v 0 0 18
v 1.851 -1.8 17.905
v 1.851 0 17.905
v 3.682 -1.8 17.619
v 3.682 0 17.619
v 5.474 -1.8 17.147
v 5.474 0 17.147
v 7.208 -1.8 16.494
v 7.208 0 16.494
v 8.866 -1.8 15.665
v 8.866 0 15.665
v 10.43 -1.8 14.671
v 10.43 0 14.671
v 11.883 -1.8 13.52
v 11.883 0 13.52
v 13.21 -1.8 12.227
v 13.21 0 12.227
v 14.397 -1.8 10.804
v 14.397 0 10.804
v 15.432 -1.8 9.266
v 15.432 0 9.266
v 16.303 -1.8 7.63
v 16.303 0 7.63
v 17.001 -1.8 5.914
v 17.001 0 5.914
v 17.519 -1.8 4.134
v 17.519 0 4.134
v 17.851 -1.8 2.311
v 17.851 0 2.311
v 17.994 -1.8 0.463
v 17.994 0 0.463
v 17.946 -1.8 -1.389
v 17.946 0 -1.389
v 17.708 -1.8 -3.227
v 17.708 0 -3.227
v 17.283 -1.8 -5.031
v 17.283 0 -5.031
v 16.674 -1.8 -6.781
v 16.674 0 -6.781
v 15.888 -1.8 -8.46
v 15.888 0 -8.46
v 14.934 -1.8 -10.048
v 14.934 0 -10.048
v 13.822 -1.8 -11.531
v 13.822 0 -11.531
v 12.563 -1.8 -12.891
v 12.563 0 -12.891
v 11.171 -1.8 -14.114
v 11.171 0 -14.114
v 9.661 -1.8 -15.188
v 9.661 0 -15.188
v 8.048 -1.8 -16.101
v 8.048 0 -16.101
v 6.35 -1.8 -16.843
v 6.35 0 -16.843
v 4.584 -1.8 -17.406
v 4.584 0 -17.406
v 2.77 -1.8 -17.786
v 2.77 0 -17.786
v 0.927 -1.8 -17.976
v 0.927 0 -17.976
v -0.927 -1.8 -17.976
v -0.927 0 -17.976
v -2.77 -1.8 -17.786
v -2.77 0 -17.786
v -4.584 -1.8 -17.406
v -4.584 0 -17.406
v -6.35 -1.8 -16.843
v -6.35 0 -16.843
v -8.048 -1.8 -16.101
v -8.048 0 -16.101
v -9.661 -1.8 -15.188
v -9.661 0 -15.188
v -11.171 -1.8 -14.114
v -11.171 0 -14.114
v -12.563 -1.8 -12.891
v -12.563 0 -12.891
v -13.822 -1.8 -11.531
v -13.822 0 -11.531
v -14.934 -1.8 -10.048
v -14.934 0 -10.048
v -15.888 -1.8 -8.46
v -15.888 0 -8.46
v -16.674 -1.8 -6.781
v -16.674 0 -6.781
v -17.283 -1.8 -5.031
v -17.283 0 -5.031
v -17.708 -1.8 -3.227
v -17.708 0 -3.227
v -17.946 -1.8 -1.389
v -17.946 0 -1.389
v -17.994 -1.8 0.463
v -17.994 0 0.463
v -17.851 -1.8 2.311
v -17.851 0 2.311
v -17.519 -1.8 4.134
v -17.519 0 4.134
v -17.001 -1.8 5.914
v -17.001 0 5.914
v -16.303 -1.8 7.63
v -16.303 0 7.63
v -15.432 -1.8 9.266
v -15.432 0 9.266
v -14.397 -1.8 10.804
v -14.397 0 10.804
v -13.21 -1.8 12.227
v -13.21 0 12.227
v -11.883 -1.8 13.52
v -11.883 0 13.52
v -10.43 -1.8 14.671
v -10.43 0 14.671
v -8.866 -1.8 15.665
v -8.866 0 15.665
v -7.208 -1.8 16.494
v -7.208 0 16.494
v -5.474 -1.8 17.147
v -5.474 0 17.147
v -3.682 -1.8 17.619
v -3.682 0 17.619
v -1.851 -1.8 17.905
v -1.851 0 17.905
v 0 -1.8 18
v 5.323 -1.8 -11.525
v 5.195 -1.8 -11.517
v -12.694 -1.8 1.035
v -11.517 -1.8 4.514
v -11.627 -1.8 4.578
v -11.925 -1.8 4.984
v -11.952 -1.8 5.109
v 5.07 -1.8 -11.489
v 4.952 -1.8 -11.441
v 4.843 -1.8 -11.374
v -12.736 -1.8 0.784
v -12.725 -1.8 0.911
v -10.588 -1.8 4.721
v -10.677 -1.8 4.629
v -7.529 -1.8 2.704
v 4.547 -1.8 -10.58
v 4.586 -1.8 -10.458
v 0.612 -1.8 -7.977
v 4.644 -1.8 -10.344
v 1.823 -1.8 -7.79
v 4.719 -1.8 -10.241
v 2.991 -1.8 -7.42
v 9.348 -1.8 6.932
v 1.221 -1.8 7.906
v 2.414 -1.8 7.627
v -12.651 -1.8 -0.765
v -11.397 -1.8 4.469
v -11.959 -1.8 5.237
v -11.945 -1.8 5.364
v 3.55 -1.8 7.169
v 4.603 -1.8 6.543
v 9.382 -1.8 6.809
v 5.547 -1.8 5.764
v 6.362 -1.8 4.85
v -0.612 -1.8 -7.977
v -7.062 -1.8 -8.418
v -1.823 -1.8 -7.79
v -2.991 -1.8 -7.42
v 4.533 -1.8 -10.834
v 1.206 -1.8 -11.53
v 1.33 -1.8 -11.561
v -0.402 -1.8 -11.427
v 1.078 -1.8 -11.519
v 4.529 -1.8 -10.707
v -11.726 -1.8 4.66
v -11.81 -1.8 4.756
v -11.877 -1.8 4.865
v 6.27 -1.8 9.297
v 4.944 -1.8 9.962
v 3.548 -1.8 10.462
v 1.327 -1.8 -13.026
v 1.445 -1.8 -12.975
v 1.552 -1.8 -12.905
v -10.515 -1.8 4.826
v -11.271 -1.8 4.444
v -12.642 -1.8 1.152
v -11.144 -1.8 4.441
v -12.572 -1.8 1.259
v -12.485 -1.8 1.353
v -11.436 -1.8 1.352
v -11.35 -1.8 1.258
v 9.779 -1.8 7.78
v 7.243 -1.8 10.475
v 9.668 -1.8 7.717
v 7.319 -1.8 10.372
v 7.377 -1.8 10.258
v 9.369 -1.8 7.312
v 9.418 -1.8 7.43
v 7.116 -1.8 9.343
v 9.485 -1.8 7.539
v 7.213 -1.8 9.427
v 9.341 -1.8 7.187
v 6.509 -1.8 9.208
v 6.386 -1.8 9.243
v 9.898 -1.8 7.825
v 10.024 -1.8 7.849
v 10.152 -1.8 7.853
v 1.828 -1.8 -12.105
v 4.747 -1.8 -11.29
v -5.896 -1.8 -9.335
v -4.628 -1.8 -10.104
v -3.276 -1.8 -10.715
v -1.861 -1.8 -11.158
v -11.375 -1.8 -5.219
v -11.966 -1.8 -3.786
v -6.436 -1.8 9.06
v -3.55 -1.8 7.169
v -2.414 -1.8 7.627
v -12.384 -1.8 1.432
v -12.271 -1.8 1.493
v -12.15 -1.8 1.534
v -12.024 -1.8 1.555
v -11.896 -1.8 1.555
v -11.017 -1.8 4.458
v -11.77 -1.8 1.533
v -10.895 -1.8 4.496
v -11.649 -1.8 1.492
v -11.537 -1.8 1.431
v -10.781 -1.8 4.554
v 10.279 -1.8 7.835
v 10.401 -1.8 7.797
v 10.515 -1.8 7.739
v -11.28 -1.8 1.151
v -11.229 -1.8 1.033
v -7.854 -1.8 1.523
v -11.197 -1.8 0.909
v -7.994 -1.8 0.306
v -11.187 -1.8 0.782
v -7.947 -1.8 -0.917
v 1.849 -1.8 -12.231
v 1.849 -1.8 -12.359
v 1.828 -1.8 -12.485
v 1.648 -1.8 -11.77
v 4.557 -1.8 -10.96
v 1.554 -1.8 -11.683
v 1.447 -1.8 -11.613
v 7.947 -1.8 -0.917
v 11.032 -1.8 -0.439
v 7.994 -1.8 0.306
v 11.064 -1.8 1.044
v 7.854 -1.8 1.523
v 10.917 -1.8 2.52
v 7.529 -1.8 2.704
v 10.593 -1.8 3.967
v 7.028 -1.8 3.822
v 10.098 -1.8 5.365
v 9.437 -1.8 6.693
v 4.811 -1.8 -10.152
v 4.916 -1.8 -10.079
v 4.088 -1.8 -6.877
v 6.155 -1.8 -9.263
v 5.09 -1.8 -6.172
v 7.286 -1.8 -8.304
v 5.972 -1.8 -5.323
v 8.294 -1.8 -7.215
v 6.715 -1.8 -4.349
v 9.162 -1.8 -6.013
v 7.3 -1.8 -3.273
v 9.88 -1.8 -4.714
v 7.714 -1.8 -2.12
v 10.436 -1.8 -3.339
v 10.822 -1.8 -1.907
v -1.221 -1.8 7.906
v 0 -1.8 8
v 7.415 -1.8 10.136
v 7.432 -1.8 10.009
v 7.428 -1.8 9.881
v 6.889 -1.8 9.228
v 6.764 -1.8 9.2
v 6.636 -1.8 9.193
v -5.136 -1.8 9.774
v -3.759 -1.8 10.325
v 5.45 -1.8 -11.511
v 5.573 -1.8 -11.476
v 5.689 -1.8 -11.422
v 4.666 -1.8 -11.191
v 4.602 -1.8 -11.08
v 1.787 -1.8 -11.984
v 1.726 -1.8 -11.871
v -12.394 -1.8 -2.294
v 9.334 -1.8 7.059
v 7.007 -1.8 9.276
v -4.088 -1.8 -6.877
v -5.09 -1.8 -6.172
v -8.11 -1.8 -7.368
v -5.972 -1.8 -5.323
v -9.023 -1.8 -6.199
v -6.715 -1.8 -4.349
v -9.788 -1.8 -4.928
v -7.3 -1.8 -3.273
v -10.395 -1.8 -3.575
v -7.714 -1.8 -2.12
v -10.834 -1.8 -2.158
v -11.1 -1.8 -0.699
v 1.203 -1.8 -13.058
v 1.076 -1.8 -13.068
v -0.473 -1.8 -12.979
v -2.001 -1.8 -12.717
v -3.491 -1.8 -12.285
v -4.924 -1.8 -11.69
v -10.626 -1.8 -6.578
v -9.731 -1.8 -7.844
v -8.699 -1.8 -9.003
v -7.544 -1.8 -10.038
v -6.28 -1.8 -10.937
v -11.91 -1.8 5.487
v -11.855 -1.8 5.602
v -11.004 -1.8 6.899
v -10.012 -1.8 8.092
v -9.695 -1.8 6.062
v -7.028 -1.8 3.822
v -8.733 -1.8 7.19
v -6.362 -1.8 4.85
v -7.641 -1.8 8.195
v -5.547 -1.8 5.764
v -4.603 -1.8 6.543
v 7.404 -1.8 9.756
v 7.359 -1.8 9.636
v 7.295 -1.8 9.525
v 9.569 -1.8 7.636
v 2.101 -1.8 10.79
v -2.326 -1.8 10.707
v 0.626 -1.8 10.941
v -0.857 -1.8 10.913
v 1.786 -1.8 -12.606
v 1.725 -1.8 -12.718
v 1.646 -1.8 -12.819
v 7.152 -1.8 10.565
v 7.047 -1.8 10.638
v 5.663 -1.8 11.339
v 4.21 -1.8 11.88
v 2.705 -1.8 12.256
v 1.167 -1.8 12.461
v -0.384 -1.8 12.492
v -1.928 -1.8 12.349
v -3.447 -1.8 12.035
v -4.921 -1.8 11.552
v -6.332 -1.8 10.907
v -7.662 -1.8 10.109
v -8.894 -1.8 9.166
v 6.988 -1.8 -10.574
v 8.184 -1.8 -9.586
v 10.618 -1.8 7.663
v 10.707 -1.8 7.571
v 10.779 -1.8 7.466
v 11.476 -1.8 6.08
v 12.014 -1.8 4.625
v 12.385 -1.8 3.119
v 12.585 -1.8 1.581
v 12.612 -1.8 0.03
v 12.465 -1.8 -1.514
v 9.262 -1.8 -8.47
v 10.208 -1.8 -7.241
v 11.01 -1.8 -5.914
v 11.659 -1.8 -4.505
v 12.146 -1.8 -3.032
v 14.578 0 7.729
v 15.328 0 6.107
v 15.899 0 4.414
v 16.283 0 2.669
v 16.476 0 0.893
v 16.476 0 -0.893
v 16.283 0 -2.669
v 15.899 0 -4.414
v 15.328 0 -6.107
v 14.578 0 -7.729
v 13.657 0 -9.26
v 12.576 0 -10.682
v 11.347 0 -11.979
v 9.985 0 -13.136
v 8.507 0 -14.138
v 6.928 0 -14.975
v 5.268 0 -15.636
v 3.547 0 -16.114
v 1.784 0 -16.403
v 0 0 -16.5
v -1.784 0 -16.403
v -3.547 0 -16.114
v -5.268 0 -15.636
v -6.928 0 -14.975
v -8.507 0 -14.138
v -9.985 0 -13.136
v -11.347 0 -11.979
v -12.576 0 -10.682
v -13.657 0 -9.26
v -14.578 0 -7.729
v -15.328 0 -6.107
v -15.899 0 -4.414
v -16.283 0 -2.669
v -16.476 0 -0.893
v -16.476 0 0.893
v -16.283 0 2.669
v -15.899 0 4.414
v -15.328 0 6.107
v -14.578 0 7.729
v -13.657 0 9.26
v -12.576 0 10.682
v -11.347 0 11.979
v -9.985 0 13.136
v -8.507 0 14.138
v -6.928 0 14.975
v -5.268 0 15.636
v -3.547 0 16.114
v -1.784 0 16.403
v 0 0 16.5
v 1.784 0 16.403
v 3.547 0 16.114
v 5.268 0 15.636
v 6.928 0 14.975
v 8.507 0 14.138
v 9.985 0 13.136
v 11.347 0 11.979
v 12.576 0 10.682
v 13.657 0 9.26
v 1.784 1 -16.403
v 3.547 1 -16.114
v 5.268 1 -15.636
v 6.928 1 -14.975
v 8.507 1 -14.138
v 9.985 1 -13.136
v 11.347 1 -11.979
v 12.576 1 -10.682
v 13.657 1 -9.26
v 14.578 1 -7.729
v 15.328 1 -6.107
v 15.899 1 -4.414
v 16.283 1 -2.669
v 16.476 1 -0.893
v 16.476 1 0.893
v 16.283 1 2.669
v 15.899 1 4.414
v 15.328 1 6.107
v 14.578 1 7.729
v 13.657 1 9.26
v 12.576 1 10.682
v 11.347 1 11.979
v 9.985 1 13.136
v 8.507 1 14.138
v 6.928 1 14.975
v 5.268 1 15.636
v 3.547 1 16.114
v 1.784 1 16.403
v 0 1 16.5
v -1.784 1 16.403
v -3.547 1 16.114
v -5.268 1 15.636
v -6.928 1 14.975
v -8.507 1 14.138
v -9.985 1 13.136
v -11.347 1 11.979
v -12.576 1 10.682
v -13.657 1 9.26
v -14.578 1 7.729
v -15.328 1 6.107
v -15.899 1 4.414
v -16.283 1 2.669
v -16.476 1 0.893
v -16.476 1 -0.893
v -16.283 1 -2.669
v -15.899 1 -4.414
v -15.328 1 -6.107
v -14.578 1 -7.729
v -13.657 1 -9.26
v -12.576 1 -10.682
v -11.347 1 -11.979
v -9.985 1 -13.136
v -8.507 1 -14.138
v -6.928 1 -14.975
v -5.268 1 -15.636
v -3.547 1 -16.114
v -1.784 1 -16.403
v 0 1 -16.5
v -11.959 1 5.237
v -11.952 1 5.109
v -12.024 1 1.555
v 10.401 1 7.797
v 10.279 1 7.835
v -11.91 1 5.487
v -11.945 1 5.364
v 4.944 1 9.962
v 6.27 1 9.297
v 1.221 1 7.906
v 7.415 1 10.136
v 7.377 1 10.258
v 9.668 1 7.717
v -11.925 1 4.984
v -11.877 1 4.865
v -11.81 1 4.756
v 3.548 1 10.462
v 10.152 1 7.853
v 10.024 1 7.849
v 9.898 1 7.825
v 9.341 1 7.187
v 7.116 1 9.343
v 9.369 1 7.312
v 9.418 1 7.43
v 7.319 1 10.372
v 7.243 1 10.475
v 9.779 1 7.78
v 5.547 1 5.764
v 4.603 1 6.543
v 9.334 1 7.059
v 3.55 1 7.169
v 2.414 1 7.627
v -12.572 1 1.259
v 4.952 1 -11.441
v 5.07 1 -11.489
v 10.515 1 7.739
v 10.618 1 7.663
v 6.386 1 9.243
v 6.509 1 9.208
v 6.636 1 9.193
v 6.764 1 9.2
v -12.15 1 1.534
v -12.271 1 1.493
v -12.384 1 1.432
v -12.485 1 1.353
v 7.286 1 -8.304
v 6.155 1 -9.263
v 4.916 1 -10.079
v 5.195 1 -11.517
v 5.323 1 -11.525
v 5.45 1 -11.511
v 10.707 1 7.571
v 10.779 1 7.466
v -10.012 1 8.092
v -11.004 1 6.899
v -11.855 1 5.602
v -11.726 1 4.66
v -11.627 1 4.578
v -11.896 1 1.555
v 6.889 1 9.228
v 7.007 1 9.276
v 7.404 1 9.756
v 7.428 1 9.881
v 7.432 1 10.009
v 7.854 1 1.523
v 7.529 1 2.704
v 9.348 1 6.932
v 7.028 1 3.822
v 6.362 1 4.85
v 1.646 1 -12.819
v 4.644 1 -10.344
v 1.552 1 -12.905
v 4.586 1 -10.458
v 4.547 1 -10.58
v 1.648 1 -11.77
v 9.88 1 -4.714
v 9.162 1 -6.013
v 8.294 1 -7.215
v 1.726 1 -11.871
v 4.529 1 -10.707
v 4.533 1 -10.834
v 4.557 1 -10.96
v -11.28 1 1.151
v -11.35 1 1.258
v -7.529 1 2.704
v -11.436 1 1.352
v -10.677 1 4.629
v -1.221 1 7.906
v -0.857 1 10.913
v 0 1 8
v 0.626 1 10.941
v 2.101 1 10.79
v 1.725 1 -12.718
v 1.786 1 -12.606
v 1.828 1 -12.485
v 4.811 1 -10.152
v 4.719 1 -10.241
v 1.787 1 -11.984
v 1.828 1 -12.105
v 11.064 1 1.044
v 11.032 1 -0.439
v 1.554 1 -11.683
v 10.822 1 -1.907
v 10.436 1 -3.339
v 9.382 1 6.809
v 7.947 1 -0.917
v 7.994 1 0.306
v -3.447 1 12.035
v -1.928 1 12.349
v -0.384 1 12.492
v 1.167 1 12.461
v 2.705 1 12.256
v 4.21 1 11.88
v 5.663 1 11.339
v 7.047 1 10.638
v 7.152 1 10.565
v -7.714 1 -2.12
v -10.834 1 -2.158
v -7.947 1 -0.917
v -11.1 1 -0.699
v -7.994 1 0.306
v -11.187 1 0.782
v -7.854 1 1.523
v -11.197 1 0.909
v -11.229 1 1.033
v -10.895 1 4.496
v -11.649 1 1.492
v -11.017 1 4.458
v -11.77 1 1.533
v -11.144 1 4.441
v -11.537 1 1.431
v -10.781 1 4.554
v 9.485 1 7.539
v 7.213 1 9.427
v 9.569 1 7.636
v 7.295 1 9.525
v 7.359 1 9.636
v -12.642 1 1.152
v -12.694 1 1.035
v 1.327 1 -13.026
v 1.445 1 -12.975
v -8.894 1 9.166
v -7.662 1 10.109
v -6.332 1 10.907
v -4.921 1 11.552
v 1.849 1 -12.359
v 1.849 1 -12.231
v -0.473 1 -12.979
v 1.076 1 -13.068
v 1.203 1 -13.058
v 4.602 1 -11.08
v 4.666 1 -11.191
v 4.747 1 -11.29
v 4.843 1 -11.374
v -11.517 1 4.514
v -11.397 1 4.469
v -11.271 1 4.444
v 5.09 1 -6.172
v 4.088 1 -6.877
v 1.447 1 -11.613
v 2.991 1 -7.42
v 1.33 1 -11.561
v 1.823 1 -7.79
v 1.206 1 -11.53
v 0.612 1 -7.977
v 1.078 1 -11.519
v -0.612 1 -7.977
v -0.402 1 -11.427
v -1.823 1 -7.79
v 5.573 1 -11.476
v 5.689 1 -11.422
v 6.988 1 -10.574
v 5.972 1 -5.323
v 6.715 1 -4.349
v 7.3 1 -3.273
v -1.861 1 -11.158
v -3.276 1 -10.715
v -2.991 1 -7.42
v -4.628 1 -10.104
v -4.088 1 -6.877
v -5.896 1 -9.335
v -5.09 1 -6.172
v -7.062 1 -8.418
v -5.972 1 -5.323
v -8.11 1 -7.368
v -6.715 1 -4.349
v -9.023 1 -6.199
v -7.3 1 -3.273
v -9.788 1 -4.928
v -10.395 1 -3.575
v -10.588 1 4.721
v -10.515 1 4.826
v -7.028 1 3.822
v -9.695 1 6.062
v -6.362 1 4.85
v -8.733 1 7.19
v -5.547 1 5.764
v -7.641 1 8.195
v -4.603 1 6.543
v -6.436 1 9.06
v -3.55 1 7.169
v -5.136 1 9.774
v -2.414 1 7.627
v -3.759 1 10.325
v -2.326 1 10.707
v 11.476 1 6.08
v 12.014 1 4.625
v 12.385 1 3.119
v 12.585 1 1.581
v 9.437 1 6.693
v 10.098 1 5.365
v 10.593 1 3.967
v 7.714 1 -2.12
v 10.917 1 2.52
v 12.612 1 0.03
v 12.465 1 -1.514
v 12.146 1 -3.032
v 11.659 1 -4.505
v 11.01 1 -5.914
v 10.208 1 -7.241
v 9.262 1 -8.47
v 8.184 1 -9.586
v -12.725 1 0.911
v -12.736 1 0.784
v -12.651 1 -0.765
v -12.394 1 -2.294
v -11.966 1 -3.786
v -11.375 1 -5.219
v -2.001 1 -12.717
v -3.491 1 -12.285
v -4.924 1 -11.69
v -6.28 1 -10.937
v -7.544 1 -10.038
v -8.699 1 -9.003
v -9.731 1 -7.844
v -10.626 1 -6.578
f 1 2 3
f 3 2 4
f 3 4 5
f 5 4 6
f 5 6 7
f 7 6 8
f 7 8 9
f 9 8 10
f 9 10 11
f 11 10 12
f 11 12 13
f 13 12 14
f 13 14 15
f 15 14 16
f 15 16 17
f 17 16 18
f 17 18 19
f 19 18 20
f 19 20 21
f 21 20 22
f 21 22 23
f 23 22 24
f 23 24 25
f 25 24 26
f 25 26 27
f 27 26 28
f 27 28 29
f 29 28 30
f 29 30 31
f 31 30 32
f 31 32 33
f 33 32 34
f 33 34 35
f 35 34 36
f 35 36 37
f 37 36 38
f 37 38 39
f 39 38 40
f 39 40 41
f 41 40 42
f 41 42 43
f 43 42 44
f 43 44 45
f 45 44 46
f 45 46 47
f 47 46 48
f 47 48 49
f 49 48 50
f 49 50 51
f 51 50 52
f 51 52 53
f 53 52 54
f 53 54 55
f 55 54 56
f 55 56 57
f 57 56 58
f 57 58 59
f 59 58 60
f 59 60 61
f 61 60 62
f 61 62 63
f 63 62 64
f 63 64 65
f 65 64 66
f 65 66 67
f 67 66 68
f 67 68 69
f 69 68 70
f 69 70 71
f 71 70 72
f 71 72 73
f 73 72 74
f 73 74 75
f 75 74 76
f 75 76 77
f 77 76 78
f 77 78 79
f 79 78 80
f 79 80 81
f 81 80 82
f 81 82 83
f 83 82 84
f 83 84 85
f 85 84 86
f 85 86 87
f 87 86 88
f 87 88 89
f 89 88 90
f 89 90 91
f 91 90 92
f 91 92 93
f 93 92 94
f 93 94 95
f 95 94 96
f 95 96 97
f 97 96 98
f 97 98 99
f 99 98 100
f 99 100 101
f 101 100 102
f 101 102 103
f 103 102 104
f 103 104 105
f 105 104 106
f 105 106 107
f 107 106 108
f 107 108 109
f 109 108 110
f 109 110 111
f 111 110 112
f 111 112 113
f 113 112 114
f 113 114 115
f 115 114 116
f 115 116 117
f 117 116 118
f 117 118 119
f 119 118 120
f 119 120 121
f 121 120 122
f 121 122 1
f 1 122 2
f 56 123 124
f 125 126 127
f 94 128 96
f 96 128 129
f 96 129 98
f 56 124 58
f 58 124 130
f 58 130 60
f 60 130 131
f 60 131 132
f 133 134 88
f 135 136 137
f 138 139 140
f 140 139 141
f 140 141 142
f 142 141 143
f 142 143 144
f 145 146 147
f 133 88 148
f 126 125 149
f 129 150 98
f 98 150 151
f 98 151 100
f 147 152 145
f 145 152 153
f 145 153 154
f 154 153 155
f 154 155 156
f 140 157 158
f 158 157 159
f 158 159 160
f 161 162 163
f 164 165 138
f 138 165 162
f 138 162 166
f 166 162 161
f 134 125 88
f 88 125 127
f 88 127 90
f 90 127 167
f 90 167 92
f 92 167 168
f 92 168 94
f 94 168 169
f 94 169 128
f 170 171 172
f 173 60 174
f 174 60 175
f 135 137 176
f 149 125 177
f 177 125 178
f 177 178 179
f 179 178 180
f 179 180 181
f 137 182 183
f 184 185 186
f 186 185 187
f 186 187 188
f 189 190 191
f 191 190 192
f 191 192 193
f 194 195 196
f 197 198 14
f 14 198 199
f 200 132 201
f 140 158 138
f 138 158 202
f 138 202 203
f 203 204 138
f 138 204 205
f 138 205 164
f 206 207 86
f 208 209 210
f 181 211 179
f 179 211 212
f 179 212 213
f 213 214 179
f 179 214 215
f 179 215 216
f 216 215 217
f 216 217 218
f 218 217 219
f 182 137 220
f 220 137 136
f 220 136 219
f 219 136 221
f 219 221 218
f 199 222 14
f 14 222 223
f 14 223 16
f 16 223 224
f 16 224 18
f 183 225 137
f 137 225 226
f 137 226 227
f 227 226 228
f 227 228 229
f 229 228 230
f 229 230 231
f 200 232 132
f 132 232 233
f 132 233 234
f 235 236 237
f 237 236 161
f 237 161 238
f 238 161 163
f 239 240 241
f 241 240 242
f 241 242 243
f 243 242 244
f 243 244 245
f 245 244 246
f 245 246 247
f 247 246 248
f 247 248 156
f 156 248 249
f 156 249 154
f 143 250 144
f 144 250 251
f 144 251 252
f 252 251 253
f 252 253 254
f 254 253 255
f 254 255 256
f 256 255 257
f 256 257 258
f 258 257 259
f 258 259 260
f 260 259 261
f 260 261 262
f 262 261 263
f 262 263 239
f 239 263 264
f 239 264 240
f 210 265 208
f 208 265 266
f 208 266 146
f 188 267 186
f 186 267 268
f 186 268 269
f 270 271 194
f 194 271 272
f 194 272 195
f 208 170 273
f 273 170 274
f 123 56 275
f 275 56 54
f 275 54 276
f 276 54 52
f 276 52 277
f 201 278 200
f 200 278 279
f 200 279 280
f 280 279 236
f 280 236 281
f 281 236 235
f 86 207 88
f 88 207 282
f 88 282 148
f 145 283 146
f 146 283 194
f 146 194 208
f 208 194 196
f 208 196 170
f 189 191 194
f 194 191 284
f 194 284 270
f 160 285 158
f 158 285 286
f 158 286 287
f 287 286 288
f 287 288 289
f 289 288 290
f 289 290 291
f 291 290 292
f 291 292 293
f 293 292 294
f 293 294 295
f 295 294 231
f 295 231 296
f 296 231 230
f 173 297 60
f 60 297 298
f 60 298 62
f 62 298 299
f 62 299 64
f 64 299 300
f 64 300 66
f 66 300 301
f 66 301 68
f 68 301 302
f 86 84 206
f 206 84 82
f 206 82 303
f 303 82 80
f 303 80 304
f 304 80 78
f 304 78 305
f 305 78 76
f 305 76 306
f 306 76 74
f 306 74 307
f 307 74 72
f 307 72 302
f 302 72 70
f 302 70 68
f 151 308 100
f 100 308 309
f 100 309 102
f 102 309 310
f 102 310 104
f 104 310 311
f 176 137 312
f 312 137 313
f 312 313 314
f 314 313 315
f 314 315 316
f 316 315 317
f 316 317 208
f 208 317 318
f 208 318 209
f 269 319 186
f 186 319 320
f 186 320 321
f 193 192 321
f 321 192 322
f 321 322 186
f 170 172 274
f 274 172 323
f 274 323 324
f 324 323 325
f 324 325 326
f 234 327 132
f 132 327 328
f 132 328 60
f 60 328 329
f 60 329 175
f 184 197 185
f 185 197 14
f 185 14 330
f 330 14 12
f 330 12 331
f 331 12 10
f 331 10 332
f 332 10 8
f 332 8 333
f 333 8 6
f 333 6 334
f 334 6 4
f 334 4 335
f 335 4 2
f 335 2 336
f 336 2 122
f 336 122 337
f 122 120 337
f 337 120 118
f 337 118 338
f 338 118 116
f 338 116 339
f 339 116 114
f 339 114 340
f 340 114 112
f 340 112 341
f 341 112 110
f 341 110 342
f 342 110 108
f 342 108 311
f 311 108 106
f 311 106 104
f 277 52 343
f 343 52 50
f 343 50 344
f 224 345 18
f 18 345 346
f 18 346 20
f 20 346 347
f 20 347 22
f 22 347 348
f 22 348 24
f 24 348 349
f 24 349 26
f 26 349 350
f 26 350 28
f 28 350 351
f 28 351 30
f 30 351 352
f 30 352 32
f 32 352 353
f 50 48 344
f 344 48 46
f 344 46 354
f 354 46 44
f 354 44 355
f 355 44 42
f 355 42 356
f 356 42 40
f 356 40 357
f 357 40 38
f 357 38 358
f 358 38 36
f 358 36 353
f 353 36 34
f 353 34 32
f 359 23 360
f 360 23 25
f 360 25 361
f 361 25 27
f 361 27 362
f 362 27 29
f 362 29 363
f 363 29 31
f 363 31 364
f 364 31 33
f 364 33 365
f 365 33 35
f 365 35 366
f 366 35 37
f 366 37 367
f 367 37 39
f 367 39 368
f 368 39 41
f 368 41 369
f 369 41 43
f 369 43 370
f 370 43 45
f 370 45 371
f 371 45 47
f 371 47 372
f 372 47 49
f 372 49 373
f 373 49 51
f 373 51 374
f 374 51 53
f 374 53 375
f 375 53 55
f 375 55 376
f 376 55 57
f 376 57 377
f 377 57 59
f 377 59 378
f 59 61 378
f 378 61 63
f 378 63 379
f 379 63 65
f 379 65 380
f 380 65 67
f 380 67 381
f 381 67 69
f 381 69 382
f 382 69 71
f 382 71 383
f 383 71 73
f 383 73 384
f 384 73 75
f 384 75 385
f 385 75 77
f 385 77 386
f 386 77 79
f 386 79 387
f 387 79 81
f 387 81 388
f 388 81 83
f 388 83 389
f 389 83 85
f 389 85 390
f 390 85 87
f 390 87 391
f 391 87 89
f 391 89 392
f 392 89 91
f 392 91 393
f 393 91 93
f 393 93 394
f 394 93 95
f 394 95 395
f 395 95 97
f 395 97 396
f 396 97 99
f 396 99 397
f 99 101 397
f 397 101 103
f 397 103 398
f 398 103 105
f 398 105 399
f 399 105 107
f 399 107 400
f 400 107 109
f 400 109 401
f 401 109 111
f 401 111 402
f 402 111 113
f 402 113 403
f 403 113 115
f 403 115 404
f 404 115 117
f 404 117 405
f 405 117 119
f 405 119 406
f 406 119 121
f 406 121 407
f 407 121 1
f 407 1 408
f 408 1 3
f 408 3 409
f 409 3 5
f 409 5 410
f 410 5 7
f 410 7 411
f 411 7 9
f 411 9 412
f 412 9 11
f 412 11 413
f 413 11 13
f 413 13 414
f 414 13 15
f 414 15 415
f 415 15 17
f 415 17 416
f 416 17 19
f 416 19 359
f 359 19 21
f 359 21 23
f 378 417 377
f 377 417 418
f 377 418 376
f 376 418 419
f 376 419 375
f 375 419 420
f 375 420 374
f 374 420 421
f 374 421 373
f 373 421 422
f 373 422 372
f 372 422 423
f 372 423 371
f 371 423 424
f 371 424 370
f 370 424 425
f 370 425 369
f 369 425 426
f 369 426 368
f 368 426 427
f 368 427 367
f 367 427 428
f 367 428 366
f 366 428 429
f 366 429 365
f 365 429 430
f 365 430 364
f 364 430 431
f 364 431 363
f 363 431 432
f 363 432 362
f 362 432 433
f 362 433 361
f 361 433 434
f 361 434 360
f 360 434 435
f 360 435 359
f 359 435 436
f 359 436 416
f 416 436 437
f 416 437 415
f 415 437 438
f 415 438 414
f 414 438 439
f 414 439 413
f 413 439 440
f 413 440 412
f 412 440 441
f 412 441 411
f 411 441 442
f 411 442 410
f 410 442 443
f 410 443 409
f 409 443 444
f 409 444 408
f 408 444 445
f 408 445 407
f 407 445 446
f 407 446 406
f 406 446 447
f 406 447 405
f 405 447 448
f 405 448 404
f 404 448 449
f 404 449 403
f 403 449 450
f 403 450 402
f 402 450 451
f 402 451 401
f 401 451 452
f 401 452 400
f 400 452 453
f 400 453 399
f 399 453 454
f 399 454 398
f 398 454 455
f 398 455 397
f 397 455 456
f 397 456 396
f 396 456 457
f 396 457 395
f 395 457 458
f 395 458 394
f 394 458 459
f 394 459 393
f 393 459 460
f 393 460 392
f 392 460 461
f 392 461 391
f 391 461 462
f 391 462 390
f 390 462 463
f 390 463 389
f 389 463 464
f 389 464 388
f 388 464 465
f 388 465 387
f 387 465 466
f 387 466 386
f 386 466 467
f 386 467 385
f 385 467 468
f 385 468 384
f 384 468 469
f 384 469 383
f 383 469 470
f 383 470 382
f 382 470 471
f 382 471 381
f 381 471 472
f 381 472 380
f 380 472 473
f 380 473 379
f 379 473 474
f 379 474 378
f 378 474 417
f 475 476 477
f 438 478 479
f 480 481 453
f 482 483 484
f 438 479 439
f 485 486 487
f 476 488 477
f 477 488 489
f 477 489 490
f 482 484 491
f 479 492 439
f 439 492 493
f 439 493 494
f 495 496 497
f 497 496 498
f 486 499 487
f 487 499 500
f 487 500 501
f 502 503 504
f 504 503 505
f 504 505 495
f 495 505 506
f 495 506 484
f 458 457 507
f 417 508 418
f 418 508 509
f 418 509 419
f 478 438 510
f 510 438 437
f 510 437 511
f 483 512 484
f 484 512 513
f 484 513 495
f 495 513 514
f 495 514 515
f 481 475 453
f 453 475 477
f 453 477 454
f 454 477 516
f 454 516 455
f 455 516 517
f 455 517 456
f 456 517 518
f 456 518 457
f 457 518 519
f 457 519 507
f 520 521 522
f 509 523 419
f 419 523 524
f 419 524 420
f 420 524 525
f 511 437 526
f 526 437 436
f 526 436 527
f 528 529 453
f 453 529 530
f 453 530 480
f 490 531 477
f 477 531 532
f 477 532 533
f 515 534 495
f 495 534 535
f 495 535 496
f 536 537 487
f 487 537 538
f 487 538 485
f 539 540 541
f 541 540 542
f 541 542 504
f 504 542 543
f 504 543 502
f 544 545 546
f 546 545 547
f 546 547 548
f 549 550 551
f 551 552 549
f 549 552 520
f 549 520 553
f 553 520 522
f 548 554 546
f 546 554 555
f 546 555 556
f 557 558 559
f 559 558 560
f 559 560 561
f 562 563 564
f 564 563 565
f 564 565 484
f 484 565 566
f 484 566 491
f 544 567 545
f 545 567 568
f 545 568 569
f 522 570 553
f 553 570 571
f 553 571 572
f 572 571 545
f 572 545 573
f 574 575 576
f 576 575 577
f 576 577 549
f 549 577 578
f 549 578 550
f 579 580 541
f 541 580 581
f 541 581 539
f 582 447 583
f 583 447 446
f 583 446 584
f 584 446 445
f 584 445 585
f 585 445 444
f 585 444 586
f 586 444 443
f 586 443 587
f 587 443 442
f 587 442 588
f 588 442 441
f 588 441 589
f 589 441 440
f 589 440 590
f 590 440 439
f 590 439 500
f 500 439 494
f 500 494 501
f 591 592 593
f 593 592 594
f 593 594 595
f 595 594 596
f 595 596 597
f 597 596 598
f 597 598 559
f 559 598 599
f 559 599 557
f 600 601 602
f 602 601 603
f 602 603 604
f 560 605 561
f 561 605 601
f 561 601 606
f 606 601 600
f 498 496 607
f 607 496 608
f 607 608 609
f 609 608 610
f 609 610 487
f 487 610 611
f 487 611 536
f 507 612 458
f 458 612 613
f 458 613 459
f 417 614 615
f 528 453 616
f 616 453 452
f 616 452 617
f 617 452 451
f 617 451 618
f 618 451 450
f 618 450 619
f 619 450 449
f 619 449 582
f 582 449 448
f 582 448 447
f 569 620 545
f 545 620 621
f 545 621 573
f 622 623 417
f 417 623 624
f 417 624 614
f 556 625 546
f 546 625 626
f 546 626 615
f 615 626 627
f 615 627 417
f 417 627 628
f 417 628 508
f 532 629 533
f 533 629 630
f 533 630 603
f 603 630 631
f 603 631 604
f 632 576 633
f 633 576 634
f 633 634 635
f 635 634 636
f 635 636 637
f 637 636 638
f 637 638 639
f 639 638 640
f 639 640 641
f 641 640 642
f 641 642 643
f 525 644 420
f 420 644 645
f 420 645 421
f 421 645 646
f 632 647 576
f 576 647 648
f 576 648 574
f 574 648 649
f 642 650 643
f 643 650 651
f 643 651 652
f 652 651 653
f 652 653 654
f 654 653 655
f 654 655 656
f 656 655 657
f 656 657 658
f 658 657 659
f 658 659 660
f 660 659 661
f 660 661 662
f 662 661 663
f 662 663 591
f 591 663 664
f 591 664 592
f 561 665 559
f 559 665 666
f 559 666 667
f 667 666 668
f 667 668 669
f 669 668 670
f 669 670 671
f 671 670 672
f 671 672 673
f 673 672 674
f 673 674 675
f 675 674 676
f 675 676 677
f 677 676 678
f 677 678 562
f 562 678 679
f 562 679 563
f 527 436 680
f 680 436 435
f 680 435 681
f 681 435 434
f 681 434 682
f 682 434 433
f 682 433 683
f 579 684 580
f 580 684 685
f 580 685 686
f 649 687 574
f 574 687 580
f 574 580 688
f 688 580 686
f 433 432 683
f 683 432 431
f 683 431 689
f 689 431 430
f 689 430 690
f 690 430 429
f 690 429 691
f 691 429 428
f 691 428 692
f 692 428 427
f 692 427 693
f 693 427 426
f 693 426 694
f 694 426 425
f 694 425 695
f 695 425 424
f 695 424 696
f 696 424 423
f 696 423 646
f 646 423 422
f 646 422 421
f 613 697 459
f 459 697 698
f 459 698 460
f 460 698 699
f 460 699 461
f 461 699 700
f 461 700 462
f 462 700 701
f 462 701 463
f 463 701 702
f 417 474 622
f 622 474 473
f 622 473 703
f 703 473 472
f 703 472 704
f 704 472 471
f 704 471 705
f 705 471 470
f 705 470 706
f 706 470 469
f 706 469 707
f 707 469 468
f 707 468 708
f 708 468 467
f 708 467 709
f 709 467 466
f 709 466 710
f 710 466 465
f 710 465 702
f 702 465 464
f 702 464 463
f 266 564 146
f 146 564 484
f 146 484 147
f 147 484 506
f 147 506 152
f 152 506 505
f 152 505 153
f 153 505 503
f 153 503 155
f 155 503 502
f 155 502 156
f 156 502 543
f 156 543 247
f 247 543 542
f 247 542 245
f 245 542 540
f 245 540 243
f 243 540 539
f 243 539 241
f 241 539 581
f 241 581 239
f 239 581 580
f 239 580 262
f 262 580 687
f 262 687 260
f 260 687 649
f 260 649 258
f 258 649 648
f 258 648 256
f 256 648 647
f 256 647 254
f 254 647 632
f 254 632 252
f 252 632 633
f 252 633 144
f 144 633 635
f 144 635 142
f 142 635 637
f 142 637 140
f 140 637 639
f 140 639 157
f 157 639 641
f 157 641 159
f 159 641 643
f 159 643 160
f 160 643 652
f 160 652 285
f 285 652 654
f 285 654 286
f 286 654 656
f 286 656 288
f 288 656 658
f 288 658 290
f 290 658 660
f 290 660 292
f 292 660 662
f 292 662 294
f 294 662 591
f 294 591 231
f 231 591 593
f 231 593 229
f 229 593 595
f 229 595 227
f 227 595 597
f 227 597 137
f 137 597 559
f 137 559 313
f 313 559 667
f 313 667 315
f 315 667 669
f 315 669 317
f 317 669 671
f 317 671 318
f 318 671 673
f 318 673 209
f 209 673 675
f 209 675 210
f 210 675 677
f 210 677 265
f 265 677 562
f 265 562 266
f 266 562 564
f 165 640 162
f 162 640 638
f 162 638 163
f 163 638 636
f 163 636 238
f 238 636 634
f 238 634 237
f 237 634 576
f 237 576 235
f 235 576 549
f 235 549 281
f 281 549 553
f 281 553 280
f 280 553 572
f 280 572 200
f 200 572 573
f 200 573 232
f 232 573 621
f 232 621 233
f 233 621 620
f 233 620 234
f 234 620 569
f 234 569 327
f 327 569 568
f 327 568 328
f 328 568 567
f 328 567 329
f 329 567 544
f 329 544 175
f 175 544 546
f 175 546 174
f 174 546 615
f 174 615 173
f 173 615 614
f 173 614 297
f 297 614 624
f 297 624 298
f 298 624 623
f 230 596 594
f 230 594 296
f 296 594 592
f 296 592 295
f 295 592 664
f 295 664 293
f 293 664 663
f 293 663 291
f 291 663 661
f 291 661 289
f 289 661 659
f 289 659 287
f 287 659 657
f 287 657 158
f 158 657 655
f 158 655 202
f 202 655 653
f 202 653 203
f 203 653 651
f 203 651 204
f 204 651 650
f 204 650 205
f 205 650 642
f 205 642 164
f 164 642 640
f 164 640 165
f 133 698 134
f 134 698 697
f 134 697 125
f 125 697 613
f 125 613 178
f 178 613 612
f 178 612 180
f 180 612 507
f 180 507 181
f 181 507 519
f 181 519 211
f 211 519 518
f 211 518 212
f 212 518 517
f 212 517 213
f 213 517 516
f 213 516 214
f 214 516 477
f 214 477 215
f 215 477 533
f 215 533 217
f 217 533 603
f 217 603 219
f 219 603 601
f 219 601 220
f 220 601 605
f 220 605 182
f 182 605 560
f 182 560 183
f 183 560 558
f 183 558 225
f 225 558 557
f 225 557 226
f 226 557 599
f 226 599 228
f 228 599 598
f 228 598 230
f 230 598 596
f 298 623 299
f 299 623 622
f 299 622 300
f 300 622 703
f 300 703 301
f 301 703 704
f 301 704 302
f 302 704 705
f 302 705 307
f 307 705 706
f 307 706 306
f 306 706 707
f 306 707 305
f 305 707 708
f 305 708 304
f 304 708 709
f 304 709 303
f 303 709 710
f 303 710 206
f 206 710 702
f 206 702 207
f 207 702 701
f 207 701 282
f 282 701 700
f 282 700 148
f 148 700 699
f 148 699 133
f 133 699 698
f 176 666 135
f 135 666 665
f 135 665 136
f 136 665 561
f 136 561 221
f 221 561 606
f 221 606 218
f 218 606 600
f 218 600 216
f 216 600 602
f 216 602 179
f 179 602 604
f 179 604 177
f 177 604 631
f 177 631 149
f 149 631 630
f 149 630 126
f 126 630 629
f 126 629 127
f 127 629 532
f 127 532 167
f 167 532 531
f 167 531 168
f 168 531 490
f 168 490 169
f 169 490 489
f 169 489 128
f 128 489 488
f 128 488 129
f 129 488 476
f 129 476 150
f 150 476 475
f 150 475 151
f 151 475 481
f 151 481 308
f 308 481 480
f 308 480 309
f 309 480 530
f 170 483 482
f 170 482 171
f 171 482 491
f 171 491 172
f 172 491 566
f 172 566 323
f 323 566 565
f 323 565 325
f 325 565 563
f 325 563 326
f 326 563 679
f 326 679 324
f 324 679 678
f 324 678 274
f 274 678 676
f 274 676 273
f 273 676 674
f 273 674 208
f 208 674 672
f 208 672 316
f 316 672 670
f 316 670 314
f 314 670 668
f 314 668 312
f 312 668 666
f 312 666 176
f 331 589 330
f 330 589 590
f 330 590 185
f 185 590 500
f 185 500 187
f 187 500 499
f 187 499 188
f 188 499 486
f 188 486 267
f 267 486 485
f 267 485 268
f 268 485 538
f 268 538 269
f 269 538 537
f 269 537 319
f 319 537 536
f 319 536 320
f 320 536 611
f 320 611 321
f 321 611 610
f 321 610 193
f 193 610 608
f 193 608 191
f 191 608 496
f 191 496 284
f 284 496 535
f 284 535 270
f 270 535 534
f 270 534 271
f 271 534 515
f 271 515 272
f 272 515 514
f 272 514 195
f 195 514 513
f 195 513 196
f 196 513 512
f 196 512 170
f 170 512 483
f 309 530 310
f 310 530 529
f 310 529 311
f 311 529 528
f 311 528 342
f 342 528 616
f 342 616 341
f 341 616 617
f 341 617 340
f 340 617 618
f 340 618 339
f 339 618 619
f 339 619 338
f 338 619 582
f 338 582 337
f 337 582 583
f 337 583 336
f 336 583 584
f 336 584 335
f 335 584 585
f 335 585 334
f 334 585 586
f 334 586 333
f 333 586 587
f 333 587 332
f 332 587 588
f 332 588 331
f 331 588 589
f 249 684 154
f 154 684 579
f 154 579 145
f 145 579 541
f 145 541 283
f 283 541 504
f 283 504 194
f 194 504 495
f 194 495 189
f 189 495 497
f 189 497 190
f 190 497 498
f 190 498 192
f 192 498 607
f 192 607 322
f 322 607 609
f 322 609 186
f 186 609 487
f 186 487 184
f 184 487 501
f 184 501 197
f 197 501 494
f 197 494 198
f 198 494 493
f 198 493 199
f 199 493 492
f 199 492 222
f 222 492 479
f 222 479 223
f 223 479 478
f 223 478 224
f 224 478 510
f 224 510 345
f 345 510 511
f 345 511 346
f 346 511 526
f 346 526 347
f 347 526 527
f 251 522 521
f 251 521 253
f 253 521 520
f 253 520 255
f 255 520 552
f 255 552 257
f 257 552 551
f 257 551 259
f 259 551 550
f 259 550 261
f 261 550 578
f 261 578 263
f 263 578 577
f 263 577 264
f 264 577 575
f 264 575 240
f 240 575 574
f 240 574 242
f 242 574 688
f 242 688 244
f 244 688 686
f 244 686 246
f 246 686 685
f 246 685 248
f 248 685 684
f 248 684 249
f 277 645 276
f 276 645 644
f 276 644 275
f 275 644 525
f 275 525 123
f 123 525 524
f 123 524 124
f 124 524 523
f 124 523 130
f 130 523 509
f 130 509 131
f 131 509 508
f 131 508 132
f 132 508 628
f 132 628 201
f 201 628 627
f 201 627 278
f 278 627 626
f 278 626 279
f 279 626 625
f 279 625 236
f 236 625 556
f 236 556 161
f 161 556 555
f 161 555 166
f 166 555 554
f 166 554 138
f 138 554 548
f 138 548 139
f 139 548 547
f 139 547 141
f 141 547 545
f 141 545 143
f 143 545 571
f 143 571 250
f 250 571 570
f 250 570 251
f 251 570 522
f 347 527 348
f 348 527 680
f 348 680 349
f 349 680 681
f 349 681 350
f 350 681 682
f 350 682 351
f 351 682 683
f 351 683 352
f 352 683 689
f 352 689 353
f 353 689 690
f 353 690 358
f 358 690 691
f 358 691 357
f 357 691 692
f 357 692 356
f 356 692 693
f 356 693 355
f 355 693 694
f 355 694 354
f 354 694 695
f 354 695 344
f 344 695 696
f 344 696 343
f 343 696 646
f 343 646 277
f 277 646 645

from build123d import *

# Parameters (mm, degrees)
SKETCH1_R           = 18
BOSS_EXTRUDE2_DEPTH = 1.8
SKETCH2_R           = 16.5
BOSS_EXTRUDE3_DEPTH = 1
SKETCH3_R           = 8
CUT_EXTRUDE1_DEPTH  = 5
CUT_EXTRUDE2_DEPTH  = 5


with BuildPart() as part:
    # Sketch1 → Boss-Extrude2 (new body)
    with BuildSketch(Plane(origin=(0, 0, 0), x_dir=(1, 0, 0), z_dir=(0, 1, 0))):
        Circle(SKETCH1_R)
    extrude(amount=-BOSS_EXTRUDE2_DEPTH)

    # Sketch2 → Boss-Extrude3 (add)
    with BuildSketch(Plane(origin=(0, 0, 0), x_dir=(1, 0, 0), z_dir=(0, 1, 0))):
        Circle(SKETCH2_R)
    extrude(amount=BOSS_EXTRUDE3_DEPTH)

    # Sketch3 → Cut-Extrude1 (cut)
    with BuildSketch(Plane(origin=(0, 1, 0), x_dir=(1, 0, 0), z_dir=(0, 1, 0))):
        Circle(SKETCH3_R)
    extrude(amount=-CUT_EXTRUDE1_DEPTH, mode=Mode.SUBTRACT)

    # Sketch5 → Cut-Extrude2 (cut)
    with BuildSketch(Plane(origin=(0, 1, 0), x_dir=(1, 0, 0), z_dir=(0, 1, 0))):
        with BuildLine():
            ThreePointArc((1.075948411, 13.068091917), (-8.698835605, 9.002564361), (-12.735889562, -0.784013805))
            ThreePointArc((-12.735889562, -0.784013805), (-11.960287094, -1.557361616), (-11.186939283, -0.781759147))
            ThreePointArc((-11.186939283, -0.781759147), (-7.601968074, 7.908885399), (1.078203069, 11.519141638))
            ThreePointArc((1.078203069, 11.519141638), (1.85155088, 12.294744107), (1.075948411, 13.068091917))
        make_face()
        with BuildLine():
            ThreePointArc((10.779325374, -7.465844616), (12.145867238, 3.032130437), (5.688968909, 11.421610803))
            ThreePointArc((5.688968909, 11.421610803), (4.631428825, 11.136593267), (4.916446361, 10.079053183))
            ThreePointArc((4.916446361, 10.079053183), (10.650279708, 2.629054772), (9.436767754, -6.693322067))
            ThreePointArc((9.436767754, -6.693322067), (9.72178529, -7.750862152), (10.779325374, -7.465844616))
        make_face()
        with BuildLine():
            ThreePointArc((-11.855273785, -5.602247302), (-3.447031633, -12.034694797), (7.046920653, -10.637596998))
            ThreePointArc((7.046920653, -10.637596998), (7.328858269, -9.579231652), (6.270492922, -9.297294036))
            ThreePointArc((6.270492922, -9.297294036), (-3.048311634, -10.537940171), (-10.514970823, -4.825819571))
            ThreePointArc((-10.514970823, -4.825819571), (-11.573336169, -4.543881955), (-11.855273785, -5.602247302))
        make_face()
    extrude(amount=-CUT_EXTRUDE2_DEPTH, mode=Mode.SUBTRACT)


solid = part.part
